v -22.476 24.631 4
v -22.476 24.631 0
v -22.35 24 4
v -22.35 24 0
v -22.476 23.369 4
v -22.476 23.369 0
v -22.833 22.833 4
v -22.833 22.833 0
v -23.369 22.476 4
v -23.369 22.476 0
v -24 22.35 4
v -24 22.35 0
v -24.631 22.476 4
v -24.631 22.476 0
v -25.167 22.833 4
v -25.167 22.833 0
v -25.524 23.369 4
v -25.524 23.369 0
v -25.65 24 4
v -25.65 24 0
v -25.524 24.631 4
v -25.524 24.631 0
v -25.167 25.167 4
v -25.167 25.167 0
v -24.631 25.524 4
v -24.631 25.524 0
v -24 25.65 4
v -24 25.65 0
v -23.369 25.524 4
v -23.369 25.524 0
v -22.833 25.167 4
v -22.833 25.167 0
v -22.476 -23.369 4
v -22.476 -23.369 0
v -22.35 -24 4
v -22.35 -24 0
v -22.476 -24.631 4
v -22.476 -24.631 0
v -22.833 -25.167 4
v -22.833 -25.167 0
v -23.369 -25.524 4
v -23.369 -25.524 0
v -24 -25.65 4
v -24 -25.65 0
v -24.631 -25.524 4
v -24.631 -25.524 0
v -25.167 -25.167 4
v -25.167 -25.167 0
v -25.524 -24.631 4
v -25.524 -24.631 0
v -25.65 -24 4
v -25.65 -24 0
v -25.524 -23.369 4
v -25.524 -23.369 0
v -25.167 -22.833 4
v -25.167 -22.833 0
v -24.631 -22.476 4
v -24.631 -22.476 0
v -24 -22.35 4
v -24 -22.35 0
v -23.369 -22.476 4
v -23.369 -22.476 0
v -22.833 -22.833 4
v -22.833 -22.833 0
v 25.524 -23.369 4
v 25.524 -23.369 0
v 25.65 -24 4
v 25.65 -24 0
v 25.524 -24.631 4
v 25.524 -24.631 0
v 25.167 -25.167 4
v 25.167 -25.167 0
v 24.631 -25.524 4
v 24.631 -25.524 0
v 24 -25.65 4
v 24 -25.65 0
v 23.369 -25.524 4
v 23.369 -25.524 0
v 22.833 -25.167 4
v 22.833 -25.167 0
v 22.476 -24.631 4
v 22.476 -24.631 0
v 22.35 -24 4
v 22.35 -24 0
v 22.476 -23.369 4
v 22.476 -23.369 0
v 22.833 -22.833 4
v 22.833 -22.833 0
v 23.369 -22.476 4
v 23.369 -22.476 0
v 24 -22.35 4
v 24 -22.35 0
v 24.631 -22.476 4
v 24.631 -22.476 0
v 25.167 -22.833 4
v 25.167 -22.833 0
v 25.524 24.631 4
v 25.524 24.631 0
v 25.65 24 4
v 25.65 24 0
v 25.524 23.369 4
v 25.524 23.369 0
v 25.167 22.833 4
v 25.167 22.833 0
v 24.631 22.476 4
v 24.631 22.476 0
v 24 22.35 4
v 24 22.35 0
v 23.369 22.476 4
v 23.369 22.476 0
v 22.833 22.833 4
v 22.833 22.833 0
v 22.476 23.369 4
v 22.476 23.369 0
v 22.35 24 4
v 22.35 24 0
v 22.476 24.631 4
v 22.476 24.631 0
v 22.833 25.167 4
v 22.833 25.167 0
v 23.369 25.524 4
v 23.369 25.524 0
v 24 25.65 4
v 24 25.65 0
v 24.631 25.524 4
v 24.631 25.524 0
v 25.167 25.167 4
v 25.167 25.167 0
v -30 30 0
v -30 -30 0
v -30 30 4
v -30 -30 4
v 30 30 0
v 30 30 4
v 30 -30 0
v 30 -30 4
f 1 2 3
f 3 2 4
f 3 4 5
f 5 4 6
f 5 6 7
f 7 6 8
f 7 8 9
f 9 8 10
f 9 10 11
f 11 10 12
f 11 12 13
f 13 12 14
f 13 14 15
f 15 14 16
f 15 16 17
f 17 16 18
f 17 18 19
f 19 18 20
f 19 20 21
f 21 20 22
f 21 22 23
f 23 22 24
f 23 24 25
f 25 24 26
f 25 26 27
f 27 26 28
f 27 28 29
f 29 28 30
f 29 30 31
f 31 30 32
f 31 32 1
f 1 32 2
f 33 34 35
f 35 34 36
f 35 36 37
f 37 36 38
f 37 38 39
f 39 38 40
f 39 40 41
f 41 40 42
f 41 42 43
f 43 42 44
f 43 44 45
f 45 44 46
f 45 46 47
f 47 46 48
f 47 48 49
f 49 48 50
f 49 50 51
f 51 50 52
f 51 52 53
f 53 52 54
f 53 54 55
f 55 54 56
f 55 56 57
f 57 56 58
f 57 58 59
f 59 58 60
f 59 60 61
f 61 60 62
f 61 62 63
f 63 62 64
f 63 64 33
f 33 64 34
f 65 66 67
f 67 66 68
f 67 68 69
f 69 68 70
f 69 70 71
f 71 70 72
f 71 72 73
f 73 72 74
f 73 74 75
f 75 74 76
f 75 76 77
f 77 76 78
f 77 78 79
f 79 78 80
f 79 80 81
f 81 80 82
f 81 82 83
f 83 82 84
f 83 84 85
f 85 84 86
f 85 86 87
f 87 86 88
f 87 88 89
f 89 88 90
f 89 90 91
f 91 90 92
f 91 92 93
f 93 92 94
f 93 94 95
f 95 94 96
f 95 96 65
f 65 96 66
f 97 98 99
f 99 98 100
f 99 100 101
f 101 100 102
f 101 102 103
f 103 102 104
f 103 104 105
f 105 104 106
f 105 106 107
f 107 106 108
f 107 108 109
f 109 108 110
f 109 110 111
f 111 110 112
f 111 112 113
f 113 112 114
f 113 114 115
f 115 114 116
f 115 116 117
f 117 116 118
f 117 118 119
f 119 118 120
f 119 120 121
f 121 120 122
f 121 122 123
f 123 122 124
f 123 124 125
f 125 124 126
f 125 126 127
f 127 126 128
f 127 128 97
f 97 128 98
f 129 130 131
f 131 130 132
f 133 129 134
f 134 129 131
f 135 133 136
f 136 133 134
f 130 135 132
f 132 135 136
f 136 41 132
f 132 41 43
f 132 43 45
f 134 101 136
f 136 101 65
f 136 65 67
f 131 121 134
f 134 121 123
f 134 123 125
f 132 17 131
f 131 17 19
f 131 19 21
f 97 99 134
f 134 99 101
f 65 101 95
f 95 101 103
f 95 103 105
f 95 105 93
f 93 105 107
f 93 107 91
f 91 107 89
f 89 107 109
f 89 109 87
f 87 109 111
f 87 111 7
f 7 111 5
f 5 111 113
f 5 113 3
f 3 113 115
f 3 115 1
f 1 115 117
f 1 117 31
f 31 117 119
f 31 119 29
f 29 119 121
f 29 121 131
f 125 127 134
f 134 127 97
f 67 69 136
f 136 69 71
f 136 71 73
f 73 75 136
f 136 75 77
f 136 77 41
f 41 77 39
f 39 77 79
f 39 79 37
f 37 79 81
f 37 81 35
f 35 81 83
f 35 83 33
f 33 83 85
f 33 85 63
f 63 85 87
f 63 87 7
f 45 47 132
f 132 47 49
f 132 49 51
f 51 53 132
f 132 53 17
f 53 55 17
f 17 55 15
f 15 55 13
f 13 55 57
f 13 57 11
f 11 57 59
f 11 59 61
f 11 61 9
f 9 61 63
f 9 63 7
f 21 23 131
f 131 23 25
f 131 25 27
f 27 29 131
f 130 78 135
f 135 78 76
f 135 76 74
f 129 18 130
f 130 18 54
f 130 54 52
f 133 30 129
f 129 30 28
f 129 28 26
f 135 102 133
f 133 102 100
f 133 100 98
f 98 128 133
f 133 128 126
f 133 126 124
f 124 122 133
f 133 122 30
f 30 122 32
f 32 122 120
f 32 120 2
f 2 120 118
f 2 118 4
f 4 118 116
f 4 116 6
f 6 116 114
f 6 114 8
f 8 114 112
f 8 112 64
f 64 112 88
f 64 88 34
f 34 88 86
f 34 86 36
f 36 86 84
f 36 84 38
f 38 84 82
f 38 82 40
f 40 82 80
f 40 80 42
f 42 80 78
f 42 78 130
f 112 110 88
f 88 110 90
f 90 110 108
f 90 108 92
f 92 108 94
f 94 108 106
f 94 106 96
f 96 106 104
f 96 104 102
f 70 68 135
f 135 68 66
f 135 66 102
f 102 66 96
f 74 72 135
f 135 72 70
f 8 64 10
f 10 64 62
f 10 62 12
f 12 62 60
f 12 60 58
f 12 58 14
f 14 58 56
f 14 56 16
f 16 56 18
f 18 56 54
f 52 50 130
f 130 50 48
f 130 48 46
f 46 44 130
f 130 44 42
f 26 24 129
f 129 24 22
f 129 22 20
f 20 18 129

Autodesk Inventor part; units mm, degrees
ref_plane "YZ Plane" through (0, 0, 0) normal (1, 0, 0) x (0, 1, 0)
ref_plane "XZ Plane" through (0, 0, 0) normal (0, 1, 0) x (-1, 0, 0)
ref_plane "XY Plane" through (0, 0, 0) normal (0, 0, 1) x (1, 0, 0)
sketch "Sketch1" plane through (0, 0, 0) normal (0, 0, 1) x (1, 0, 0)
  line L0 (-30, 30) -> (30, 30)
  line L1 (30, 30) -> (30, -30)
  line L2 (30, -30) -> (-30, -30)
  line L3 (-30, -30) -> (-30, 30)
  line L4 (-30, 30) -> (30, -30) construction
  line L5 (30, 30) -> (-30, -30) construction
  circle A0 centre (-24, 24) radius 1.65
  circle A1 centre (-24, -24) radius 1.65
  circle A2 centre (24, -24) radius 1.65
  circle A3 centre (24, 24) radius 1.65
  point P0 (0, 0)
  dimension "d0" = 60
  dimension "d1" = 60
  dimension "d2" = 3.3
  dimension "d3" = 24
  dimension "d6" = 360
extrude "Extrusion1" add sketch "Sketch1" along normal blind 4
properties part number "antenna_socket_cap" material "Acetal Resin, Black"
